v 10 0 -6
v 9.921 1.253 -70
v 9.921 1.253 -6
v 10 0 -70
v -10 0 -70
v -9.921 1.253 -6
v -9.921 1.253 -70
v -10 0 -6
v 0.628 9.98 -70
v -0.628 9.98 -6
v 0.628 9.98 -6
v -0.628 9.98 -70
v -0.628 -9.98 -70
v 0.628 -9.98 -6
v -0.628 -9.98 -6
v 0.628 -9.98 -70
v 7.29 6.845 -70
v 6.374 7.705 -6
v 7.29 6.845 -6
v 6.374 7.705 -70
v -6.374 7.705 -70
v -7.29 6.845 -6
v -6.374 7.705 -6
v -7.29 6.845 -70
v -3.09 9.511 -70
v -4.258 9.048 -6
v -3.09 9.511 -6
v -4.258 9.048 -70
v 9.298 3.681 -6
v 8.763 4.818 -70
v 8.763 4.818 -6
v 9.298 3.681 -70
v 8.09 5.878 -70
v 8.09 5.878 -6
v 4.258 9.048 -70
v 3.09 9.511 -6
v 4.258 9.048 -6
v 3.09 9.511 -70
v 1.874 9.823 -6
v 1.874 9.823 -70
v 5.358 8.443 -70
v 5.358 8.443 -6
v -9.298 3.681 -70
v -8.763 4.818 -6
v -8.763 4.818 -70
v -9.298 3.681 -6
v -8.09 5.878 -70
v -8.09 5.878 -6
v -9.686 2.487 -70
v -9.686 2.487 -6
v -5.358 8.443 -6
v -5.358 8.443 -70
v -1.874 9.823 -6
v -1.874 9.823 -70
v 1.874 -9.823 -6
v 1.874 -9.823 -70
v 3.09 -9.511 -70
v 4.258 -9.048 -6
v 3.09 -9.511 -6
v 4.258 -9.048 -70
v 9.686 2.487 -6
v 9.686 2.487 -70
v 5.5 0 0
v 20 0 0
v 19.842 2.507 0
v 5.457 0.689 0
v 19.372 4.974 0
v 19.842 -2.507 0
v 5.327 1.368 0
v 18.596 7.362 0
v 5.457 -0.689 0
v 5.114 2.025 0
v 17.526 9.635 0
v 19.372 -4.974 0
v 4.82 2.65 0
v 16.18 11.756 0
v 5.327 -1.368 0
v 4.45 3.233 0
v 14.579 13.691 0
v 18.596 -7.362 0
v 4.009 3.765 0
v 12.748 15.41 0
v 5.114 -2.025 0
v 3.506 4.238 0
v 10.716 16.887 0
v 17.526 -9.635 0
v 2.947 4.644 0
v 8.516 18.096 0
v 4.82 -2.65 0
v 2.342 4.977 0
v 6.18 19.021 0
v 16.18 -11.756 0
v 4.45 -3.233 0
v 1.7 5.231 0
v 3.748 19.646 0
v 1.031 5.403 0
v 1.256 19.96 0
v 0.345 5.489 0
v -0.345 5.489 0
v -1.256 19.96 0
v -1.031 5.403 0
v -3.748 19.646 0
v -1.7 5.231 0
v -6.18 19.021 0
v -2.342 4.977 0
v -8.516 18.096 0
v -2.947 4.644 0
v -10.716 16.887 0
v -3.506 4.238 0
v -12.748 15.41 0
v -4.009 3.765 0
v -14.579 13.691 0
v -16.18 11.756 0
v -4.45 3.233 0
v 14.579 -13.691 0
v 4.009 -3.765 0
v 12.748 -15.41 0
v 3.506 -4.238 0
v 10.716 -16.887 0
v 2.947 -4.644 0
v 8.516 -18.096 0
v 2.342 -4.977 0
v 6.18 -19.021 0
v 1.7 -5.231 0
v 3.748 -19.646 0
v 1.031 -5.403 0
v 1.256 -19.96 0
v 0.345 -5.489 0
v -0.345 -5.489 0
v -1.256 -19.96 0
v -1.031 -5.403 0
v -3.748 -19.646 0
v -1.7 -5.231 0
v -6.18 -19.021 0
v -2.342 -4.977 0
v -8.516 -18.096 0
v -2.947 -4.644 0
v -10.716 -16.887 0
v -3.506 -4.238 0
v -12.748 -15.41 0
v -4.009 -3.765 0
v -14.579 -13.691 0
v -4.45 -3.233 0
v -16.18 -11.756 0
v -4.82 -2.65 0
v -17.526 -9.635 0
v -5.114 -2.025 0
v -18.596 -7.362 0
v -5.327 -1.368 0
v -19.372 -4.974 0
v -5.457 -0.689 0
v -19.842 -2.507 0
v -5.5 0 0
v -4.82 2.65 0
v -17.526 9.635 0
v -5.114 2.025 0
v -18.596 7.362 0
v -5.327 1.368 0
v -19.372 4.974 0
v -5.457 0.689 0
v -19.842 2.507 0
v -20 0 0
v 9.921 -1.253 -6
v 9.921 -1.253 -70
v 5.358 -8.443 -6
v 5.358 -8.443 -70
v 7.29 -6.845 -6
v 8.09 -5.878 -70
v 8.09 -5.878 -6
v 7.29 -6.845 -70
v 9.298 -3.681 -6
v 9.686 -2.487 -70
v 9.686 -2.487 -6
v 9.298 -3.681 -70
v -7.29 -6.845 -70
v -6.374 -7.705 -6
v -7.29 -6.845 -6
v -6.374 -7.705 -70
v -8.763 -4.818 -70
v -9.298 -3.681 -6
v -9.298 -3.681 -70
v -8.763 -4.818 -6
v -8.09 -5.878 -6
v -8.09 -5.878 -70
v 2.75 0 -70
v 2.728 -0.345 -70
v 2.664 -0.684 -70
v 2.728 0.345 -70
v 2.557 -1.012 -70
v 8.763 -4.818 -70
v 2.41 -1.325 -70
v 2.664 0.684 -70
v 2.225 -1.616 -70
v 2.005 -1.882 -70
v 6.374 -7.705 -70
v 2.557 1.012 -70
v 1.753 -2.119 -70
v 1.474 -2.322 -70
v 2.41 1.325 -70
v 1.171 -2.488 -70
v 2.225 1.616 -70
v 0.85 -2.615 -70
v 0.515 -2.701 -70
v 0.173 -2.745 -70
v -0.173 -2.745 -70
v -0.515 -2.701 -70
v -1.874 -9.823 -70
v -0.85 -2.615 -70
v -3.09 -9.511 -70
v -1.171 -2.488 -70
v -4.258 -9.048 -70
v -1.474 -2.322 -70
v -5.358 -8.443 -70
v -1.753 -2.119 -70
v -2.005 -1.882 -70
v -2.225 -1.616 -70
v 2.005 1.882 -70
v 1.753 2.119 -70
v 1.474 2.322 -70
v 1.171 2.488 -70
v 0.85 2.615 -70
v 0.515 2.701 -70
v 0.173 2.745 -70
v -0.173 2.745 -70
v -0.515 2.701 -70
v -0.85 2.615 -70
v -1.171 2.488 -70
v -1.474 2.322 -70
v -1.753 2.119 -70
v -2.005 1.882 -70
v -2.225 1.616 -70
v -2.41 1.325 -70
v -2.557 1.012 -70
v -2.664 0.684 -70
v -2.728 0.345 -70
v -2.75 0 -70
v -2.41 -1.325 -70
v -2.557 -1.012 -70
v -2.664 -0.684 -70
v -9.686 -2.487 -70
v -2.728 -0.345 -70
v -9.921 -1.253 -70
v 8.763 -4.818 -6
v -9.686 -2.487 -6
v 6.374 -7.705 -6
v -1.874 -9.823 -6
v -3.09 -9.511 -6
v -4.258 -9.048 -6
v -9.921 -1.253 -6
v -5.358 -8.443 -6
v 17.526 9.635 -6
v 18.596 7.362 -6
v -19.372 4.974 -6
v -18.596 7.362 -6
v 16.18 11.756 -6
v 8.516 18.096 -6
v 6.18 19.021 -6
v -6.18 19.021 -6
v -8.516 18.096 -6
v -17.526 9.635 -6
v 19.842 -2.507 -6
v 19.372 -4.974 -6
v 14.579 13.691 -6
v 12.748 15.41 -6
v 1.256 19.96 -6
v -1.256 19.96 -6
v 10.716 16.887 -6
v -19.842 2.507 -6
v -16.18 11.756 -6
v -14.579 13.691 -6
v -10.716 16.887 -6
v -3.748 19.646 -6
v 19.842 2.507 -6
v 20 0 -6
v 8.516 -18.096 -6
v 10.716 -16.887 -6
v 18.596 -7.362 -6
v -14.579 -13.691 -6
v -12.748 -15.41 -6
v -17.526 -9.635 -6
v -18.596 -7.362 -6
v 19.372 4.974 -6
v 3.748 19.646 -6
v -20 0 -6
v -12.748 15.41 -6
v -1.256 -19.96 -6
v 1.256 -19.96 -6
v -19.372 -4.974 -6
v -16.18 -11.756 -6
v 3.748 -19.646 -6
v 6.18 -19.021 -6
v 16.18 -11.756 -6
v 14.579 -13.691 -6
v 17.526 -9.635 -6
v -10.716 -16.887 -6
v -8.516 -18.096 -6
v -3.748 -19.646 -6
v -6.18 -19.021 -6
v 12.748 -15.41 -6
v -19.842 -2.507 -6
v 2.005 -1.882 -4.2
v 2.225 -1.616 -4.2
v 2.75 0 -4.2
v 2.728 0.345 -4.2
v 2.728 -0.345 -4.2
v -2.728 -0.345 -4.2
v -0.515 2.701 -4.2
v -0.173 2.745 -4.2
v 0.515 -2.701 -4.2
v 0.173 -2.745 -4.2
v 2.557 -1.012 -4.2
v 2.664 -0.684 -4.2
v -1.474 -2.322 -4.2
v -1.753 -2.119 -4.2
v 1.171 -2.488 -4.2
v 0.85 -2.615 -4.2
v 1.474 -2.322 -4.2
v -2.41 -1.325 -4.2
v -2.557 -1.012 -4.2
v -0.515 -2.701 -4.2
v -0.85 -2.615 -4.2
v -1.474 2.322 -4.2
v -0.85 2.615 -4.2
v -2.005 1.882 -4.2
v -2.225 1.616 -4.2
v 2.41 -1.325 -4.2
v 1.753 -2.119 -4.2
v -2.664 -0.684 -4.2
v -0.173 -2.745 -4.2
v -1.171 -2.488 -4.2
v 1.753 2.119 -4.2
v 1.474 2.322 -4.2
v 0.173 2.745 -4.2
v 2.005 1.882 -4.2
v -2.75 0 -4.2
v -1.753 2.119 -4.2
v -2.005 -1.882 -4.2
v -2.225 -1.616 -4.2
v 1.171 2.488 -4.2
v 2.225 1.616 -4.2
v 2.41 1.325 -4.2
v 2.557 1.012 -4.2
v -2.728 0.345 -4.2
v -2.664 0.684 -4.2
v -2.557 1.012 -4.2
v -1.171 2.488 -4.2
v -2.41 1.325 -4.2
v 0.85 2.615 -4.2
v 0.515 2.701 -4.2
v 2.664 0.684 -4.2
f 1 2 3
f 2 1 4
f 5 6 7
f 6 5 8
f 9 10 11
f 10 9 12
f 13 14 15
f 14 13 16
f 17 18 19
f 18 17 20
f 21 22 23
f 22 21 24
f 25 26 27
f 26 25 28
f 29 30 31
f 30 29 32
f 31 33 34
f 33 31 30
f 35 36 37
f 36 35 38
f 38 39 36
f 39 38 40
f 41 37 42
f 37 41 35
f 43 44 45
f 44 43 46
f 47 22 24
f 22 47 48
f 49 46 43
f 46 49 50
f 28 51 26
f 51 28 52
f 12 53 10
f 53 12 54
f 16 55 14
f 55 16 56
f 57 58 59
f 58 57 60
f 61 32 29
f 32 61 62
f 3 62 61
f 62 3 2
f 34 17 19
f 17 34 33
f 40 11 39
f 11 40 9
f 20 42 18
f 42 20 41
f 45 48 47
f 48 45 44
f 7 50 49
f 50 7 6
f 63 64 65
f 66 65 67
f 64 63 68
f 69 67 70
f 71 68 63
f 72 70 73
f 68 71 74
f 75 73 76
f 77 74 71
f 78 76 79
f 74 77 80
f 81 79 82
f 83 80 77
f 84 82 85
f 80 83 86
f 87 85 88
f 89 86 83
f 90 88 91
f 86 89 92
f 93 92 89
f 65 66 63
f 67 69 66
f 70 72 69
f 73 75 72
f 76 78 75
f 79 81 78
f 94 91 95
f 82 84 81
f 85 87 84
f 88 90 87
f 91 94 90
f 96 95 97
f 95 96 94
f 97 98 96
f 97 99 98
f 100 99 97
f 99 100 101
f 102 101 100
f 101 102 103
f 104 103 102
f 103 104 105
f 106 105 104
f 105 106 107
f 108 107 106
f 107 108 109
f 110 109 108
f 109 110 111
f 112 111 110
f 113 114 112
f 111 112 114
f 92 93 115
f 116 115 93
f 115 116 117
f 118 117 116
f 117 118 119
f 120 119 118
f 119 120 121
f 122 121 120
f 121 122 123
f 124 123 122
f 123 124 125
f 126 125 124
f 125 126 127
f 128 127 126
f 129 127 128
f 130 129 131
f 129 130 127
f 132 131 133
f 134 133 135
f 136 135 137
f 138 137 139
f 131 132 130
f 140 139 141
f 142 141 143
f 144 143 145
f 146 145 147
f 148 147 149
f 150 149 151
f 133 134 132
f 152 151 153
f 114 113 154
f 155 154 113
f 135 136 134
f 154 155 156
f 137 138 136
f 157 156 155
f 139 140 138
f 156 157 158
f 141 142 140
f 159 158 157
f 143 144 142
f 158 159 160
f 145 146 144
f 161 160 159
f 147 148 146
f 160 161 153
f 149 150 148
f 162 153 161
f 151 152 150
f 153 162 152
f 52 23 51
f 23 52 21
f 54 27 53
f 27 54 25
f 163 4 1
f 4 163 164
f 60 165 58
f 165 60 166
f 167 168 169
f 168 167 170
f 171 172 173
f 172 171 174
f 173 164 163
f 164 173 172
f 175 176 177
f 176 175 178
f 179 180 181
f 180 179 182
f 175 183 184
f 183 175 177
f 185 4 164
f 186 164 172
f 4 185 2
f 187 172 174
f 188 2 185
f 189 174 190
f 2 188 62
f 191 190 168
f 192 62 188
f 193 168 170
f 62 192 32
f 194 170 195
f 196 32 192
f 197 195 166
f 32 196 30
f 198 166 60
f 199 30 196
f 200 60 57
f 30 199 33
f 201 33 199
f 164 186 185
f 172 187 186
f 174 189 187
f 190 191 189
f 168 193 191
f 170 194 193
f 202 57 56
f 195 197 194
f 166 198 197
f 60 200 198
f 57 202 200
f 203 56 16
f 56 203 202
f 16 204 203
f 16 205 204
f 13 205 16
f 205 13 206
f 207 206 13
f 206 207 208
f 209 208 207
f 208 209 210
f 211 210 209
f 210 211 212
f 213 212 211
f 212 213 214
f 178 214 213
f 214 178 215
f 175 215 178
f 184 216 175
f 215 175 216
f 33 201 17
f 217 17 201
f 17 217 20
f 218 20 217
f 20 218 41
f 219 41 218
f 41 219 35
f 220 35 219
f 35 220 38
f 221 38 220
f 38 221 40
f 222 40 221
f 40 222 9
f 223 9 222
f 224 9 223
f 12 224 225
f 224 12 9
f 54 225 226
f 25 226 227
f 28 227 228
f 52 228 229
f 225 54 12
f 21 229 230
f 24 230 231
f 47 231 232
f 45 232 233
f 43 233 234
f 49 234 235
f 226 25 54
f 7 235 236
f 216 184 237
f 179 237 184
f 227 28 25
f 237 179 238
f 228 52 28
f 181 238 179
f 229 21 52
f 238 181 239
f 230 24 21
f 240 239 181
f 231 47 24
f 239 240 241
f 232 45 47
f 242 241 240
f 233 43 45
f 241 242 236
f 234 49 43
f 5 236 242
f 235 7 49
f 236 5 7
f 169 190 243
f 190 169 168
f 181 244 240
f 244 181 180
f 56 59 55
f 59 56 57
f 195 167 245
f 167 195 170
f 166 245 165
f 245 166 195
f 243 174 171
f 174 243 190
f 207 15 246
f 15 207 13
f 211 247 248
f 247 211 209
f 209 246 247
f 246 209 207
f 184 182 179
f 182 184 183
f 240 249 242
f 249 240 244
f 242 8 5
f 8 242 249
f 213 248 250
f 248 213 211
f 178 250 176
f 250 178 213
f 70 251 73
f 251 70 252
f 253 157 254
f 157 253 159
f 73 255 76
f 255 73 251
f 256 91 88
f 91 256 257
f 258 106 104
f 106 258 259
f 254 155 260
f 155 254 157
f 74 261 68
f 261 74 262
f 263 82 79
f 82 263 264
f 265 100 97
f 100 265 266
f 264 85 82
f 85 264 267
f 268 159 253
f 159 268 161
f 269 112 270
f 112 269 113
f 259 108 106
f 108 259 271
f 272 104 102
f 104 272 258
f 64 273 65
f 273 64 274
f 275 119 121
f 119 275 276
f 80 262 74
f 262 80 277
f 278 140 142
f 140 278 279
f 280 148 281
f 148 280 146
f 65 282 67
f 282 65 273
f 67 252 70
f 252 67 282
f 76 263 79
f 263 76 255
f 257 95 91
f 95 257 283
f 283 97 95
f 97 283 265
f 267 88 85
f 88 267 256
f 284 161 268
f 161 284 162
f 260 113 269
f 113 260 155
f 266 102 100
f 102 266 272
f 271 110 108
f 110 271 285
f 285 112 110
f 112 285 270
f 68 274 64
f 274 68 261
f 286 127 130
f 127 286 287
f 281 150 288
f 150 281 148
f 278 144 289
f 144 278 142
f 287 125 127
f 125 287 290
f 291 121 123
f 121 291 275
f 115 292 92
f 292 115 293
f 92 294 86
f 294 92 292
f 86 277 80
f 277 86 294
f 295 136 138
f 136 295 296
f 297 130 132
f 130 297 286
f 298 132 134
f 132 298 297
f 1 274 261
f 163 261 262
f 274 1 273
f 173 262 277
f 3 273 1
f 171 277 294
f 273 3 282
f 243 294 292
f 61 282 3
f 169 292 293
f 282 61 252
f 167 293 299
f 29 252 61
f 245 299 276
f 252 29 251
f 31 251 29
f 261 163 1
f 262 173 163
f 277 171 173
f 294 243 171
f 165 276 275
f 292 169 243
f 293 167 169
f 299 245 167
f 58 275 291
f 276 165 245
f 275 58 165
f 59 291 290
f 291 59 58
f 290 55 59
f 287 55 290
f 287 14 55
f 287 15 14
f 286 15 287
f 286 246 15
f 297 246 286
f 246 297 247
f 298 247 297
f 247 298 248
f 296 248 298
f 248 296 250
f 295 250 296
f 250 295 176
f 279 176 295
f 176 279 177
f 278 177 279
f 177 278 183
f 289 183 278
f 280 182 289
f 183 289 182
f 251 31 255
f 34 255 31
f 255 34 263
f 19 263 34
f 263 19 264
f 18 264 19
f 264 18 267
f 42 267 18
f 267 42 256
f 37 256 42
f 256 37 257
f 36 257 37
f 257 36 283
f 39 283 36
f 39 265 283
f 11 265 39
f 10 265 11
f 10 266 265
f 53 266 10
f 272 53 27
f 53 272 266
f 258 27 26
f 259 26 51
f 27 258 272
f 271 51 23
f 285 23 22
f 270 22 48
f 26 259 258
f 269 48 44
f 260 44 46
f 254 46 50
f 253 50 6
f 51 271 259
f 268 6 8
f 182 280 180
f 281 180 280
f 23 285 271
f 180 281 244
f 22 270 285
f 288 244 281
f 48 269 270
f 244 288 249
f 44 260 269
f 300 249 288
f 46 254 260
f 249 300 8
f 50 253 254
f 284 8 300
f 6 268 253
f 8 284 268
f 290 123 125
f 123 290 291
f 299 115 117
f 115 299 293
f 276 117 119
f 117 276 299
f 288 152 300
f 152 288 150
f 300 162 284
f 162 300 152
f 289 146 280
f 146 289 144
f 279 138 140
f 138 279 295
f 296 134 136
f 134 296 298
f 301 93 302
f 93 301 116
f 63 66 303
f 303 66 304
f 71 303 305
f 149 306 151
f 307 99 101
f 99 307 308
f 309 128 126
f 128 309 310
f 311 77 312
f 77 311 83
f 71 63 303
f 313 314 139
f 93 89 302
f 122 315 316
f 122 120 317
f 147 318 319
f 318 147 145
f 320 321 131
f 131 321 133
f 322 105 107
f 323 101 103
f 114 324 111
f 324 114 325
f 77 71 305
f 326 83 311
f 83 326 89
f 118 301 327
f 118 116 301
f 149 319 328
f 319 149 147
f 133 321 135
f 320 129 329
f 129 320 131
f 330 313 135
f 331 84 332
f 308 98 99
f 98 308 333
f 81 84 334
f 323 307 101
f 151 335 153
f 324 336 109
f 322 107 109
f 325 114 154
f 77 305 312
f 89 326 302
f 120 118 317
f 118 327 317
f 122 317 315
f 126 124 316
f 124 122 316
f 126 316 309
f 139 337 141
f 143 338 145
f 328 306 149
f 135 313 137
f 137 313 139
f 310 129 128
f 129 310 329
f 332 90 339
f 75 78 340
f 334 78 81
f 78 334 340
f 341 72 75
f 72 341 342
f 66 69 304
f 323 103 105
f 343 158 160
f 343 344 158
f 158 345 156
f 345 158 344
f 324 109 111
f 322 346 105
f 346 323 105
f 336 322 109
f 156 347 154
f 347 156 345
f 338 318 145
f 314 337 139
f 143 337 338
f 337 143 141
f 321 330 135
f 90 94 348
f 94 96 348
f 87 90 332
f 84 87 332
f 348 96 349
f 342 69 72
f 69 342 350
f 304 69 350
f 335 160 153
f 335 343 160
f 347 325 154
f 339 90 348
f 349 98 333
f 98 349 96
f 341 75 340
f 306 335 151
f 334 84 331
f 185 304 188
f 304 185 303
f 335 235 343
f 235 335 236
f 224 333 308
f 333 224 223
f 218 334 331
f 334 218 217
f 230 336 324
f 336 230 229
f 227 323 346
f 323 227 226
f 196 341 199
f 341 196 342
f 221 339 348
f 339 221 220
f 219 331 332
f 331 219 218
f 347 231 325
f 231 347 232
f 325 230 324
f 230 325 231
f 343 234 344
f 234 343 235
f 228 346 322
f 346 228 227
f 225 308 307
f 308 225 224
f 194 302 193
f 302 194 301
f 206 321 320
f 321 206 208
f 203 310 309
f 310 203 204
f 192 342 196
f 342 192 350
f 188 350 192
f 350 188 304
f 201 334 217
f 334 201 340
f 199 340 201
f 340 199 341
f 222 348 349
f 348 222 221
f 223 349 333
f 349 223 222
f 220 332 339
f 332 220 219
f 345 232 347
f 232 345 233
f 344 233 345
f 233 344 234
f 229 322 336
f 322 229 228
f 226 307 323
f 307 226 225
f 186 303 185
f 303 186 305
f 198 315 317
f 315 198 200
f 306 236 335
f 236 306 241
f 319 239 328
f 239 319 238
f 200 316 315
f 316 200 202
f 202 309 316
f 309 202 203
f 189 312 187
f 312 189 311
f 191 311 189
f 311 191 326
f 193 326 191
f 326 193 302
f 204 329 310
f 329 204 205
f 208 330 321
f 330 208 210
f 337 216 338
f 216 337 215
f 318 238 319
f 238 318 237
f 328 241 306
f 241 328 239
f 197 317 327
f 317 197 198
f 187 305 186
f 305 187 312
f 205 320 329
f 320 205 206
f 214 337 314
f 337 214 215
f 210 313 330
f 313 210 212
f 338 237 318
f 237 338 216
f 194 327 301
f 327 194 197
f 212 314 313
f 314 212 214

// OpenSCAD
$fn = 50;


difference() {
	union() {
		translate(v = [0, 0, -70.0000000000]) {
			cylinder(h = 70, r = 10.0000000000);
		}
		translate(v = [0, 0, -6.0000000000]) {
			cylinder(h = 6, r = 20.0000000000);
		}
	}
	union() {
		translate(v = [0, 0, 0]) {
			rotate(a = [0, 0, 0]) {
				difference() {
					union() {
						#translate(v = [0, 0, -70.0000000000]) {
							cylinder(h = 70, r = 2.2500000000);
						}
						#translate(v = [0, 0, -4.2000000000]) {
							cylinder(h = 4.2000000000, r = 10.0000000000, r1 = 2.7500000000, r2 = 5.5000000000);
						}
						#translate(v = [0, 0, -70.0000000000]) {
							cylinder(h = 70, r = 2.7500000000);
						}
						#translate(v = [0, 0, -70.0000000000]) {
							cylinder(h = 70, r = 2.2500000000);
						}
					}
					union();
				}
			}
		}
	}
}
